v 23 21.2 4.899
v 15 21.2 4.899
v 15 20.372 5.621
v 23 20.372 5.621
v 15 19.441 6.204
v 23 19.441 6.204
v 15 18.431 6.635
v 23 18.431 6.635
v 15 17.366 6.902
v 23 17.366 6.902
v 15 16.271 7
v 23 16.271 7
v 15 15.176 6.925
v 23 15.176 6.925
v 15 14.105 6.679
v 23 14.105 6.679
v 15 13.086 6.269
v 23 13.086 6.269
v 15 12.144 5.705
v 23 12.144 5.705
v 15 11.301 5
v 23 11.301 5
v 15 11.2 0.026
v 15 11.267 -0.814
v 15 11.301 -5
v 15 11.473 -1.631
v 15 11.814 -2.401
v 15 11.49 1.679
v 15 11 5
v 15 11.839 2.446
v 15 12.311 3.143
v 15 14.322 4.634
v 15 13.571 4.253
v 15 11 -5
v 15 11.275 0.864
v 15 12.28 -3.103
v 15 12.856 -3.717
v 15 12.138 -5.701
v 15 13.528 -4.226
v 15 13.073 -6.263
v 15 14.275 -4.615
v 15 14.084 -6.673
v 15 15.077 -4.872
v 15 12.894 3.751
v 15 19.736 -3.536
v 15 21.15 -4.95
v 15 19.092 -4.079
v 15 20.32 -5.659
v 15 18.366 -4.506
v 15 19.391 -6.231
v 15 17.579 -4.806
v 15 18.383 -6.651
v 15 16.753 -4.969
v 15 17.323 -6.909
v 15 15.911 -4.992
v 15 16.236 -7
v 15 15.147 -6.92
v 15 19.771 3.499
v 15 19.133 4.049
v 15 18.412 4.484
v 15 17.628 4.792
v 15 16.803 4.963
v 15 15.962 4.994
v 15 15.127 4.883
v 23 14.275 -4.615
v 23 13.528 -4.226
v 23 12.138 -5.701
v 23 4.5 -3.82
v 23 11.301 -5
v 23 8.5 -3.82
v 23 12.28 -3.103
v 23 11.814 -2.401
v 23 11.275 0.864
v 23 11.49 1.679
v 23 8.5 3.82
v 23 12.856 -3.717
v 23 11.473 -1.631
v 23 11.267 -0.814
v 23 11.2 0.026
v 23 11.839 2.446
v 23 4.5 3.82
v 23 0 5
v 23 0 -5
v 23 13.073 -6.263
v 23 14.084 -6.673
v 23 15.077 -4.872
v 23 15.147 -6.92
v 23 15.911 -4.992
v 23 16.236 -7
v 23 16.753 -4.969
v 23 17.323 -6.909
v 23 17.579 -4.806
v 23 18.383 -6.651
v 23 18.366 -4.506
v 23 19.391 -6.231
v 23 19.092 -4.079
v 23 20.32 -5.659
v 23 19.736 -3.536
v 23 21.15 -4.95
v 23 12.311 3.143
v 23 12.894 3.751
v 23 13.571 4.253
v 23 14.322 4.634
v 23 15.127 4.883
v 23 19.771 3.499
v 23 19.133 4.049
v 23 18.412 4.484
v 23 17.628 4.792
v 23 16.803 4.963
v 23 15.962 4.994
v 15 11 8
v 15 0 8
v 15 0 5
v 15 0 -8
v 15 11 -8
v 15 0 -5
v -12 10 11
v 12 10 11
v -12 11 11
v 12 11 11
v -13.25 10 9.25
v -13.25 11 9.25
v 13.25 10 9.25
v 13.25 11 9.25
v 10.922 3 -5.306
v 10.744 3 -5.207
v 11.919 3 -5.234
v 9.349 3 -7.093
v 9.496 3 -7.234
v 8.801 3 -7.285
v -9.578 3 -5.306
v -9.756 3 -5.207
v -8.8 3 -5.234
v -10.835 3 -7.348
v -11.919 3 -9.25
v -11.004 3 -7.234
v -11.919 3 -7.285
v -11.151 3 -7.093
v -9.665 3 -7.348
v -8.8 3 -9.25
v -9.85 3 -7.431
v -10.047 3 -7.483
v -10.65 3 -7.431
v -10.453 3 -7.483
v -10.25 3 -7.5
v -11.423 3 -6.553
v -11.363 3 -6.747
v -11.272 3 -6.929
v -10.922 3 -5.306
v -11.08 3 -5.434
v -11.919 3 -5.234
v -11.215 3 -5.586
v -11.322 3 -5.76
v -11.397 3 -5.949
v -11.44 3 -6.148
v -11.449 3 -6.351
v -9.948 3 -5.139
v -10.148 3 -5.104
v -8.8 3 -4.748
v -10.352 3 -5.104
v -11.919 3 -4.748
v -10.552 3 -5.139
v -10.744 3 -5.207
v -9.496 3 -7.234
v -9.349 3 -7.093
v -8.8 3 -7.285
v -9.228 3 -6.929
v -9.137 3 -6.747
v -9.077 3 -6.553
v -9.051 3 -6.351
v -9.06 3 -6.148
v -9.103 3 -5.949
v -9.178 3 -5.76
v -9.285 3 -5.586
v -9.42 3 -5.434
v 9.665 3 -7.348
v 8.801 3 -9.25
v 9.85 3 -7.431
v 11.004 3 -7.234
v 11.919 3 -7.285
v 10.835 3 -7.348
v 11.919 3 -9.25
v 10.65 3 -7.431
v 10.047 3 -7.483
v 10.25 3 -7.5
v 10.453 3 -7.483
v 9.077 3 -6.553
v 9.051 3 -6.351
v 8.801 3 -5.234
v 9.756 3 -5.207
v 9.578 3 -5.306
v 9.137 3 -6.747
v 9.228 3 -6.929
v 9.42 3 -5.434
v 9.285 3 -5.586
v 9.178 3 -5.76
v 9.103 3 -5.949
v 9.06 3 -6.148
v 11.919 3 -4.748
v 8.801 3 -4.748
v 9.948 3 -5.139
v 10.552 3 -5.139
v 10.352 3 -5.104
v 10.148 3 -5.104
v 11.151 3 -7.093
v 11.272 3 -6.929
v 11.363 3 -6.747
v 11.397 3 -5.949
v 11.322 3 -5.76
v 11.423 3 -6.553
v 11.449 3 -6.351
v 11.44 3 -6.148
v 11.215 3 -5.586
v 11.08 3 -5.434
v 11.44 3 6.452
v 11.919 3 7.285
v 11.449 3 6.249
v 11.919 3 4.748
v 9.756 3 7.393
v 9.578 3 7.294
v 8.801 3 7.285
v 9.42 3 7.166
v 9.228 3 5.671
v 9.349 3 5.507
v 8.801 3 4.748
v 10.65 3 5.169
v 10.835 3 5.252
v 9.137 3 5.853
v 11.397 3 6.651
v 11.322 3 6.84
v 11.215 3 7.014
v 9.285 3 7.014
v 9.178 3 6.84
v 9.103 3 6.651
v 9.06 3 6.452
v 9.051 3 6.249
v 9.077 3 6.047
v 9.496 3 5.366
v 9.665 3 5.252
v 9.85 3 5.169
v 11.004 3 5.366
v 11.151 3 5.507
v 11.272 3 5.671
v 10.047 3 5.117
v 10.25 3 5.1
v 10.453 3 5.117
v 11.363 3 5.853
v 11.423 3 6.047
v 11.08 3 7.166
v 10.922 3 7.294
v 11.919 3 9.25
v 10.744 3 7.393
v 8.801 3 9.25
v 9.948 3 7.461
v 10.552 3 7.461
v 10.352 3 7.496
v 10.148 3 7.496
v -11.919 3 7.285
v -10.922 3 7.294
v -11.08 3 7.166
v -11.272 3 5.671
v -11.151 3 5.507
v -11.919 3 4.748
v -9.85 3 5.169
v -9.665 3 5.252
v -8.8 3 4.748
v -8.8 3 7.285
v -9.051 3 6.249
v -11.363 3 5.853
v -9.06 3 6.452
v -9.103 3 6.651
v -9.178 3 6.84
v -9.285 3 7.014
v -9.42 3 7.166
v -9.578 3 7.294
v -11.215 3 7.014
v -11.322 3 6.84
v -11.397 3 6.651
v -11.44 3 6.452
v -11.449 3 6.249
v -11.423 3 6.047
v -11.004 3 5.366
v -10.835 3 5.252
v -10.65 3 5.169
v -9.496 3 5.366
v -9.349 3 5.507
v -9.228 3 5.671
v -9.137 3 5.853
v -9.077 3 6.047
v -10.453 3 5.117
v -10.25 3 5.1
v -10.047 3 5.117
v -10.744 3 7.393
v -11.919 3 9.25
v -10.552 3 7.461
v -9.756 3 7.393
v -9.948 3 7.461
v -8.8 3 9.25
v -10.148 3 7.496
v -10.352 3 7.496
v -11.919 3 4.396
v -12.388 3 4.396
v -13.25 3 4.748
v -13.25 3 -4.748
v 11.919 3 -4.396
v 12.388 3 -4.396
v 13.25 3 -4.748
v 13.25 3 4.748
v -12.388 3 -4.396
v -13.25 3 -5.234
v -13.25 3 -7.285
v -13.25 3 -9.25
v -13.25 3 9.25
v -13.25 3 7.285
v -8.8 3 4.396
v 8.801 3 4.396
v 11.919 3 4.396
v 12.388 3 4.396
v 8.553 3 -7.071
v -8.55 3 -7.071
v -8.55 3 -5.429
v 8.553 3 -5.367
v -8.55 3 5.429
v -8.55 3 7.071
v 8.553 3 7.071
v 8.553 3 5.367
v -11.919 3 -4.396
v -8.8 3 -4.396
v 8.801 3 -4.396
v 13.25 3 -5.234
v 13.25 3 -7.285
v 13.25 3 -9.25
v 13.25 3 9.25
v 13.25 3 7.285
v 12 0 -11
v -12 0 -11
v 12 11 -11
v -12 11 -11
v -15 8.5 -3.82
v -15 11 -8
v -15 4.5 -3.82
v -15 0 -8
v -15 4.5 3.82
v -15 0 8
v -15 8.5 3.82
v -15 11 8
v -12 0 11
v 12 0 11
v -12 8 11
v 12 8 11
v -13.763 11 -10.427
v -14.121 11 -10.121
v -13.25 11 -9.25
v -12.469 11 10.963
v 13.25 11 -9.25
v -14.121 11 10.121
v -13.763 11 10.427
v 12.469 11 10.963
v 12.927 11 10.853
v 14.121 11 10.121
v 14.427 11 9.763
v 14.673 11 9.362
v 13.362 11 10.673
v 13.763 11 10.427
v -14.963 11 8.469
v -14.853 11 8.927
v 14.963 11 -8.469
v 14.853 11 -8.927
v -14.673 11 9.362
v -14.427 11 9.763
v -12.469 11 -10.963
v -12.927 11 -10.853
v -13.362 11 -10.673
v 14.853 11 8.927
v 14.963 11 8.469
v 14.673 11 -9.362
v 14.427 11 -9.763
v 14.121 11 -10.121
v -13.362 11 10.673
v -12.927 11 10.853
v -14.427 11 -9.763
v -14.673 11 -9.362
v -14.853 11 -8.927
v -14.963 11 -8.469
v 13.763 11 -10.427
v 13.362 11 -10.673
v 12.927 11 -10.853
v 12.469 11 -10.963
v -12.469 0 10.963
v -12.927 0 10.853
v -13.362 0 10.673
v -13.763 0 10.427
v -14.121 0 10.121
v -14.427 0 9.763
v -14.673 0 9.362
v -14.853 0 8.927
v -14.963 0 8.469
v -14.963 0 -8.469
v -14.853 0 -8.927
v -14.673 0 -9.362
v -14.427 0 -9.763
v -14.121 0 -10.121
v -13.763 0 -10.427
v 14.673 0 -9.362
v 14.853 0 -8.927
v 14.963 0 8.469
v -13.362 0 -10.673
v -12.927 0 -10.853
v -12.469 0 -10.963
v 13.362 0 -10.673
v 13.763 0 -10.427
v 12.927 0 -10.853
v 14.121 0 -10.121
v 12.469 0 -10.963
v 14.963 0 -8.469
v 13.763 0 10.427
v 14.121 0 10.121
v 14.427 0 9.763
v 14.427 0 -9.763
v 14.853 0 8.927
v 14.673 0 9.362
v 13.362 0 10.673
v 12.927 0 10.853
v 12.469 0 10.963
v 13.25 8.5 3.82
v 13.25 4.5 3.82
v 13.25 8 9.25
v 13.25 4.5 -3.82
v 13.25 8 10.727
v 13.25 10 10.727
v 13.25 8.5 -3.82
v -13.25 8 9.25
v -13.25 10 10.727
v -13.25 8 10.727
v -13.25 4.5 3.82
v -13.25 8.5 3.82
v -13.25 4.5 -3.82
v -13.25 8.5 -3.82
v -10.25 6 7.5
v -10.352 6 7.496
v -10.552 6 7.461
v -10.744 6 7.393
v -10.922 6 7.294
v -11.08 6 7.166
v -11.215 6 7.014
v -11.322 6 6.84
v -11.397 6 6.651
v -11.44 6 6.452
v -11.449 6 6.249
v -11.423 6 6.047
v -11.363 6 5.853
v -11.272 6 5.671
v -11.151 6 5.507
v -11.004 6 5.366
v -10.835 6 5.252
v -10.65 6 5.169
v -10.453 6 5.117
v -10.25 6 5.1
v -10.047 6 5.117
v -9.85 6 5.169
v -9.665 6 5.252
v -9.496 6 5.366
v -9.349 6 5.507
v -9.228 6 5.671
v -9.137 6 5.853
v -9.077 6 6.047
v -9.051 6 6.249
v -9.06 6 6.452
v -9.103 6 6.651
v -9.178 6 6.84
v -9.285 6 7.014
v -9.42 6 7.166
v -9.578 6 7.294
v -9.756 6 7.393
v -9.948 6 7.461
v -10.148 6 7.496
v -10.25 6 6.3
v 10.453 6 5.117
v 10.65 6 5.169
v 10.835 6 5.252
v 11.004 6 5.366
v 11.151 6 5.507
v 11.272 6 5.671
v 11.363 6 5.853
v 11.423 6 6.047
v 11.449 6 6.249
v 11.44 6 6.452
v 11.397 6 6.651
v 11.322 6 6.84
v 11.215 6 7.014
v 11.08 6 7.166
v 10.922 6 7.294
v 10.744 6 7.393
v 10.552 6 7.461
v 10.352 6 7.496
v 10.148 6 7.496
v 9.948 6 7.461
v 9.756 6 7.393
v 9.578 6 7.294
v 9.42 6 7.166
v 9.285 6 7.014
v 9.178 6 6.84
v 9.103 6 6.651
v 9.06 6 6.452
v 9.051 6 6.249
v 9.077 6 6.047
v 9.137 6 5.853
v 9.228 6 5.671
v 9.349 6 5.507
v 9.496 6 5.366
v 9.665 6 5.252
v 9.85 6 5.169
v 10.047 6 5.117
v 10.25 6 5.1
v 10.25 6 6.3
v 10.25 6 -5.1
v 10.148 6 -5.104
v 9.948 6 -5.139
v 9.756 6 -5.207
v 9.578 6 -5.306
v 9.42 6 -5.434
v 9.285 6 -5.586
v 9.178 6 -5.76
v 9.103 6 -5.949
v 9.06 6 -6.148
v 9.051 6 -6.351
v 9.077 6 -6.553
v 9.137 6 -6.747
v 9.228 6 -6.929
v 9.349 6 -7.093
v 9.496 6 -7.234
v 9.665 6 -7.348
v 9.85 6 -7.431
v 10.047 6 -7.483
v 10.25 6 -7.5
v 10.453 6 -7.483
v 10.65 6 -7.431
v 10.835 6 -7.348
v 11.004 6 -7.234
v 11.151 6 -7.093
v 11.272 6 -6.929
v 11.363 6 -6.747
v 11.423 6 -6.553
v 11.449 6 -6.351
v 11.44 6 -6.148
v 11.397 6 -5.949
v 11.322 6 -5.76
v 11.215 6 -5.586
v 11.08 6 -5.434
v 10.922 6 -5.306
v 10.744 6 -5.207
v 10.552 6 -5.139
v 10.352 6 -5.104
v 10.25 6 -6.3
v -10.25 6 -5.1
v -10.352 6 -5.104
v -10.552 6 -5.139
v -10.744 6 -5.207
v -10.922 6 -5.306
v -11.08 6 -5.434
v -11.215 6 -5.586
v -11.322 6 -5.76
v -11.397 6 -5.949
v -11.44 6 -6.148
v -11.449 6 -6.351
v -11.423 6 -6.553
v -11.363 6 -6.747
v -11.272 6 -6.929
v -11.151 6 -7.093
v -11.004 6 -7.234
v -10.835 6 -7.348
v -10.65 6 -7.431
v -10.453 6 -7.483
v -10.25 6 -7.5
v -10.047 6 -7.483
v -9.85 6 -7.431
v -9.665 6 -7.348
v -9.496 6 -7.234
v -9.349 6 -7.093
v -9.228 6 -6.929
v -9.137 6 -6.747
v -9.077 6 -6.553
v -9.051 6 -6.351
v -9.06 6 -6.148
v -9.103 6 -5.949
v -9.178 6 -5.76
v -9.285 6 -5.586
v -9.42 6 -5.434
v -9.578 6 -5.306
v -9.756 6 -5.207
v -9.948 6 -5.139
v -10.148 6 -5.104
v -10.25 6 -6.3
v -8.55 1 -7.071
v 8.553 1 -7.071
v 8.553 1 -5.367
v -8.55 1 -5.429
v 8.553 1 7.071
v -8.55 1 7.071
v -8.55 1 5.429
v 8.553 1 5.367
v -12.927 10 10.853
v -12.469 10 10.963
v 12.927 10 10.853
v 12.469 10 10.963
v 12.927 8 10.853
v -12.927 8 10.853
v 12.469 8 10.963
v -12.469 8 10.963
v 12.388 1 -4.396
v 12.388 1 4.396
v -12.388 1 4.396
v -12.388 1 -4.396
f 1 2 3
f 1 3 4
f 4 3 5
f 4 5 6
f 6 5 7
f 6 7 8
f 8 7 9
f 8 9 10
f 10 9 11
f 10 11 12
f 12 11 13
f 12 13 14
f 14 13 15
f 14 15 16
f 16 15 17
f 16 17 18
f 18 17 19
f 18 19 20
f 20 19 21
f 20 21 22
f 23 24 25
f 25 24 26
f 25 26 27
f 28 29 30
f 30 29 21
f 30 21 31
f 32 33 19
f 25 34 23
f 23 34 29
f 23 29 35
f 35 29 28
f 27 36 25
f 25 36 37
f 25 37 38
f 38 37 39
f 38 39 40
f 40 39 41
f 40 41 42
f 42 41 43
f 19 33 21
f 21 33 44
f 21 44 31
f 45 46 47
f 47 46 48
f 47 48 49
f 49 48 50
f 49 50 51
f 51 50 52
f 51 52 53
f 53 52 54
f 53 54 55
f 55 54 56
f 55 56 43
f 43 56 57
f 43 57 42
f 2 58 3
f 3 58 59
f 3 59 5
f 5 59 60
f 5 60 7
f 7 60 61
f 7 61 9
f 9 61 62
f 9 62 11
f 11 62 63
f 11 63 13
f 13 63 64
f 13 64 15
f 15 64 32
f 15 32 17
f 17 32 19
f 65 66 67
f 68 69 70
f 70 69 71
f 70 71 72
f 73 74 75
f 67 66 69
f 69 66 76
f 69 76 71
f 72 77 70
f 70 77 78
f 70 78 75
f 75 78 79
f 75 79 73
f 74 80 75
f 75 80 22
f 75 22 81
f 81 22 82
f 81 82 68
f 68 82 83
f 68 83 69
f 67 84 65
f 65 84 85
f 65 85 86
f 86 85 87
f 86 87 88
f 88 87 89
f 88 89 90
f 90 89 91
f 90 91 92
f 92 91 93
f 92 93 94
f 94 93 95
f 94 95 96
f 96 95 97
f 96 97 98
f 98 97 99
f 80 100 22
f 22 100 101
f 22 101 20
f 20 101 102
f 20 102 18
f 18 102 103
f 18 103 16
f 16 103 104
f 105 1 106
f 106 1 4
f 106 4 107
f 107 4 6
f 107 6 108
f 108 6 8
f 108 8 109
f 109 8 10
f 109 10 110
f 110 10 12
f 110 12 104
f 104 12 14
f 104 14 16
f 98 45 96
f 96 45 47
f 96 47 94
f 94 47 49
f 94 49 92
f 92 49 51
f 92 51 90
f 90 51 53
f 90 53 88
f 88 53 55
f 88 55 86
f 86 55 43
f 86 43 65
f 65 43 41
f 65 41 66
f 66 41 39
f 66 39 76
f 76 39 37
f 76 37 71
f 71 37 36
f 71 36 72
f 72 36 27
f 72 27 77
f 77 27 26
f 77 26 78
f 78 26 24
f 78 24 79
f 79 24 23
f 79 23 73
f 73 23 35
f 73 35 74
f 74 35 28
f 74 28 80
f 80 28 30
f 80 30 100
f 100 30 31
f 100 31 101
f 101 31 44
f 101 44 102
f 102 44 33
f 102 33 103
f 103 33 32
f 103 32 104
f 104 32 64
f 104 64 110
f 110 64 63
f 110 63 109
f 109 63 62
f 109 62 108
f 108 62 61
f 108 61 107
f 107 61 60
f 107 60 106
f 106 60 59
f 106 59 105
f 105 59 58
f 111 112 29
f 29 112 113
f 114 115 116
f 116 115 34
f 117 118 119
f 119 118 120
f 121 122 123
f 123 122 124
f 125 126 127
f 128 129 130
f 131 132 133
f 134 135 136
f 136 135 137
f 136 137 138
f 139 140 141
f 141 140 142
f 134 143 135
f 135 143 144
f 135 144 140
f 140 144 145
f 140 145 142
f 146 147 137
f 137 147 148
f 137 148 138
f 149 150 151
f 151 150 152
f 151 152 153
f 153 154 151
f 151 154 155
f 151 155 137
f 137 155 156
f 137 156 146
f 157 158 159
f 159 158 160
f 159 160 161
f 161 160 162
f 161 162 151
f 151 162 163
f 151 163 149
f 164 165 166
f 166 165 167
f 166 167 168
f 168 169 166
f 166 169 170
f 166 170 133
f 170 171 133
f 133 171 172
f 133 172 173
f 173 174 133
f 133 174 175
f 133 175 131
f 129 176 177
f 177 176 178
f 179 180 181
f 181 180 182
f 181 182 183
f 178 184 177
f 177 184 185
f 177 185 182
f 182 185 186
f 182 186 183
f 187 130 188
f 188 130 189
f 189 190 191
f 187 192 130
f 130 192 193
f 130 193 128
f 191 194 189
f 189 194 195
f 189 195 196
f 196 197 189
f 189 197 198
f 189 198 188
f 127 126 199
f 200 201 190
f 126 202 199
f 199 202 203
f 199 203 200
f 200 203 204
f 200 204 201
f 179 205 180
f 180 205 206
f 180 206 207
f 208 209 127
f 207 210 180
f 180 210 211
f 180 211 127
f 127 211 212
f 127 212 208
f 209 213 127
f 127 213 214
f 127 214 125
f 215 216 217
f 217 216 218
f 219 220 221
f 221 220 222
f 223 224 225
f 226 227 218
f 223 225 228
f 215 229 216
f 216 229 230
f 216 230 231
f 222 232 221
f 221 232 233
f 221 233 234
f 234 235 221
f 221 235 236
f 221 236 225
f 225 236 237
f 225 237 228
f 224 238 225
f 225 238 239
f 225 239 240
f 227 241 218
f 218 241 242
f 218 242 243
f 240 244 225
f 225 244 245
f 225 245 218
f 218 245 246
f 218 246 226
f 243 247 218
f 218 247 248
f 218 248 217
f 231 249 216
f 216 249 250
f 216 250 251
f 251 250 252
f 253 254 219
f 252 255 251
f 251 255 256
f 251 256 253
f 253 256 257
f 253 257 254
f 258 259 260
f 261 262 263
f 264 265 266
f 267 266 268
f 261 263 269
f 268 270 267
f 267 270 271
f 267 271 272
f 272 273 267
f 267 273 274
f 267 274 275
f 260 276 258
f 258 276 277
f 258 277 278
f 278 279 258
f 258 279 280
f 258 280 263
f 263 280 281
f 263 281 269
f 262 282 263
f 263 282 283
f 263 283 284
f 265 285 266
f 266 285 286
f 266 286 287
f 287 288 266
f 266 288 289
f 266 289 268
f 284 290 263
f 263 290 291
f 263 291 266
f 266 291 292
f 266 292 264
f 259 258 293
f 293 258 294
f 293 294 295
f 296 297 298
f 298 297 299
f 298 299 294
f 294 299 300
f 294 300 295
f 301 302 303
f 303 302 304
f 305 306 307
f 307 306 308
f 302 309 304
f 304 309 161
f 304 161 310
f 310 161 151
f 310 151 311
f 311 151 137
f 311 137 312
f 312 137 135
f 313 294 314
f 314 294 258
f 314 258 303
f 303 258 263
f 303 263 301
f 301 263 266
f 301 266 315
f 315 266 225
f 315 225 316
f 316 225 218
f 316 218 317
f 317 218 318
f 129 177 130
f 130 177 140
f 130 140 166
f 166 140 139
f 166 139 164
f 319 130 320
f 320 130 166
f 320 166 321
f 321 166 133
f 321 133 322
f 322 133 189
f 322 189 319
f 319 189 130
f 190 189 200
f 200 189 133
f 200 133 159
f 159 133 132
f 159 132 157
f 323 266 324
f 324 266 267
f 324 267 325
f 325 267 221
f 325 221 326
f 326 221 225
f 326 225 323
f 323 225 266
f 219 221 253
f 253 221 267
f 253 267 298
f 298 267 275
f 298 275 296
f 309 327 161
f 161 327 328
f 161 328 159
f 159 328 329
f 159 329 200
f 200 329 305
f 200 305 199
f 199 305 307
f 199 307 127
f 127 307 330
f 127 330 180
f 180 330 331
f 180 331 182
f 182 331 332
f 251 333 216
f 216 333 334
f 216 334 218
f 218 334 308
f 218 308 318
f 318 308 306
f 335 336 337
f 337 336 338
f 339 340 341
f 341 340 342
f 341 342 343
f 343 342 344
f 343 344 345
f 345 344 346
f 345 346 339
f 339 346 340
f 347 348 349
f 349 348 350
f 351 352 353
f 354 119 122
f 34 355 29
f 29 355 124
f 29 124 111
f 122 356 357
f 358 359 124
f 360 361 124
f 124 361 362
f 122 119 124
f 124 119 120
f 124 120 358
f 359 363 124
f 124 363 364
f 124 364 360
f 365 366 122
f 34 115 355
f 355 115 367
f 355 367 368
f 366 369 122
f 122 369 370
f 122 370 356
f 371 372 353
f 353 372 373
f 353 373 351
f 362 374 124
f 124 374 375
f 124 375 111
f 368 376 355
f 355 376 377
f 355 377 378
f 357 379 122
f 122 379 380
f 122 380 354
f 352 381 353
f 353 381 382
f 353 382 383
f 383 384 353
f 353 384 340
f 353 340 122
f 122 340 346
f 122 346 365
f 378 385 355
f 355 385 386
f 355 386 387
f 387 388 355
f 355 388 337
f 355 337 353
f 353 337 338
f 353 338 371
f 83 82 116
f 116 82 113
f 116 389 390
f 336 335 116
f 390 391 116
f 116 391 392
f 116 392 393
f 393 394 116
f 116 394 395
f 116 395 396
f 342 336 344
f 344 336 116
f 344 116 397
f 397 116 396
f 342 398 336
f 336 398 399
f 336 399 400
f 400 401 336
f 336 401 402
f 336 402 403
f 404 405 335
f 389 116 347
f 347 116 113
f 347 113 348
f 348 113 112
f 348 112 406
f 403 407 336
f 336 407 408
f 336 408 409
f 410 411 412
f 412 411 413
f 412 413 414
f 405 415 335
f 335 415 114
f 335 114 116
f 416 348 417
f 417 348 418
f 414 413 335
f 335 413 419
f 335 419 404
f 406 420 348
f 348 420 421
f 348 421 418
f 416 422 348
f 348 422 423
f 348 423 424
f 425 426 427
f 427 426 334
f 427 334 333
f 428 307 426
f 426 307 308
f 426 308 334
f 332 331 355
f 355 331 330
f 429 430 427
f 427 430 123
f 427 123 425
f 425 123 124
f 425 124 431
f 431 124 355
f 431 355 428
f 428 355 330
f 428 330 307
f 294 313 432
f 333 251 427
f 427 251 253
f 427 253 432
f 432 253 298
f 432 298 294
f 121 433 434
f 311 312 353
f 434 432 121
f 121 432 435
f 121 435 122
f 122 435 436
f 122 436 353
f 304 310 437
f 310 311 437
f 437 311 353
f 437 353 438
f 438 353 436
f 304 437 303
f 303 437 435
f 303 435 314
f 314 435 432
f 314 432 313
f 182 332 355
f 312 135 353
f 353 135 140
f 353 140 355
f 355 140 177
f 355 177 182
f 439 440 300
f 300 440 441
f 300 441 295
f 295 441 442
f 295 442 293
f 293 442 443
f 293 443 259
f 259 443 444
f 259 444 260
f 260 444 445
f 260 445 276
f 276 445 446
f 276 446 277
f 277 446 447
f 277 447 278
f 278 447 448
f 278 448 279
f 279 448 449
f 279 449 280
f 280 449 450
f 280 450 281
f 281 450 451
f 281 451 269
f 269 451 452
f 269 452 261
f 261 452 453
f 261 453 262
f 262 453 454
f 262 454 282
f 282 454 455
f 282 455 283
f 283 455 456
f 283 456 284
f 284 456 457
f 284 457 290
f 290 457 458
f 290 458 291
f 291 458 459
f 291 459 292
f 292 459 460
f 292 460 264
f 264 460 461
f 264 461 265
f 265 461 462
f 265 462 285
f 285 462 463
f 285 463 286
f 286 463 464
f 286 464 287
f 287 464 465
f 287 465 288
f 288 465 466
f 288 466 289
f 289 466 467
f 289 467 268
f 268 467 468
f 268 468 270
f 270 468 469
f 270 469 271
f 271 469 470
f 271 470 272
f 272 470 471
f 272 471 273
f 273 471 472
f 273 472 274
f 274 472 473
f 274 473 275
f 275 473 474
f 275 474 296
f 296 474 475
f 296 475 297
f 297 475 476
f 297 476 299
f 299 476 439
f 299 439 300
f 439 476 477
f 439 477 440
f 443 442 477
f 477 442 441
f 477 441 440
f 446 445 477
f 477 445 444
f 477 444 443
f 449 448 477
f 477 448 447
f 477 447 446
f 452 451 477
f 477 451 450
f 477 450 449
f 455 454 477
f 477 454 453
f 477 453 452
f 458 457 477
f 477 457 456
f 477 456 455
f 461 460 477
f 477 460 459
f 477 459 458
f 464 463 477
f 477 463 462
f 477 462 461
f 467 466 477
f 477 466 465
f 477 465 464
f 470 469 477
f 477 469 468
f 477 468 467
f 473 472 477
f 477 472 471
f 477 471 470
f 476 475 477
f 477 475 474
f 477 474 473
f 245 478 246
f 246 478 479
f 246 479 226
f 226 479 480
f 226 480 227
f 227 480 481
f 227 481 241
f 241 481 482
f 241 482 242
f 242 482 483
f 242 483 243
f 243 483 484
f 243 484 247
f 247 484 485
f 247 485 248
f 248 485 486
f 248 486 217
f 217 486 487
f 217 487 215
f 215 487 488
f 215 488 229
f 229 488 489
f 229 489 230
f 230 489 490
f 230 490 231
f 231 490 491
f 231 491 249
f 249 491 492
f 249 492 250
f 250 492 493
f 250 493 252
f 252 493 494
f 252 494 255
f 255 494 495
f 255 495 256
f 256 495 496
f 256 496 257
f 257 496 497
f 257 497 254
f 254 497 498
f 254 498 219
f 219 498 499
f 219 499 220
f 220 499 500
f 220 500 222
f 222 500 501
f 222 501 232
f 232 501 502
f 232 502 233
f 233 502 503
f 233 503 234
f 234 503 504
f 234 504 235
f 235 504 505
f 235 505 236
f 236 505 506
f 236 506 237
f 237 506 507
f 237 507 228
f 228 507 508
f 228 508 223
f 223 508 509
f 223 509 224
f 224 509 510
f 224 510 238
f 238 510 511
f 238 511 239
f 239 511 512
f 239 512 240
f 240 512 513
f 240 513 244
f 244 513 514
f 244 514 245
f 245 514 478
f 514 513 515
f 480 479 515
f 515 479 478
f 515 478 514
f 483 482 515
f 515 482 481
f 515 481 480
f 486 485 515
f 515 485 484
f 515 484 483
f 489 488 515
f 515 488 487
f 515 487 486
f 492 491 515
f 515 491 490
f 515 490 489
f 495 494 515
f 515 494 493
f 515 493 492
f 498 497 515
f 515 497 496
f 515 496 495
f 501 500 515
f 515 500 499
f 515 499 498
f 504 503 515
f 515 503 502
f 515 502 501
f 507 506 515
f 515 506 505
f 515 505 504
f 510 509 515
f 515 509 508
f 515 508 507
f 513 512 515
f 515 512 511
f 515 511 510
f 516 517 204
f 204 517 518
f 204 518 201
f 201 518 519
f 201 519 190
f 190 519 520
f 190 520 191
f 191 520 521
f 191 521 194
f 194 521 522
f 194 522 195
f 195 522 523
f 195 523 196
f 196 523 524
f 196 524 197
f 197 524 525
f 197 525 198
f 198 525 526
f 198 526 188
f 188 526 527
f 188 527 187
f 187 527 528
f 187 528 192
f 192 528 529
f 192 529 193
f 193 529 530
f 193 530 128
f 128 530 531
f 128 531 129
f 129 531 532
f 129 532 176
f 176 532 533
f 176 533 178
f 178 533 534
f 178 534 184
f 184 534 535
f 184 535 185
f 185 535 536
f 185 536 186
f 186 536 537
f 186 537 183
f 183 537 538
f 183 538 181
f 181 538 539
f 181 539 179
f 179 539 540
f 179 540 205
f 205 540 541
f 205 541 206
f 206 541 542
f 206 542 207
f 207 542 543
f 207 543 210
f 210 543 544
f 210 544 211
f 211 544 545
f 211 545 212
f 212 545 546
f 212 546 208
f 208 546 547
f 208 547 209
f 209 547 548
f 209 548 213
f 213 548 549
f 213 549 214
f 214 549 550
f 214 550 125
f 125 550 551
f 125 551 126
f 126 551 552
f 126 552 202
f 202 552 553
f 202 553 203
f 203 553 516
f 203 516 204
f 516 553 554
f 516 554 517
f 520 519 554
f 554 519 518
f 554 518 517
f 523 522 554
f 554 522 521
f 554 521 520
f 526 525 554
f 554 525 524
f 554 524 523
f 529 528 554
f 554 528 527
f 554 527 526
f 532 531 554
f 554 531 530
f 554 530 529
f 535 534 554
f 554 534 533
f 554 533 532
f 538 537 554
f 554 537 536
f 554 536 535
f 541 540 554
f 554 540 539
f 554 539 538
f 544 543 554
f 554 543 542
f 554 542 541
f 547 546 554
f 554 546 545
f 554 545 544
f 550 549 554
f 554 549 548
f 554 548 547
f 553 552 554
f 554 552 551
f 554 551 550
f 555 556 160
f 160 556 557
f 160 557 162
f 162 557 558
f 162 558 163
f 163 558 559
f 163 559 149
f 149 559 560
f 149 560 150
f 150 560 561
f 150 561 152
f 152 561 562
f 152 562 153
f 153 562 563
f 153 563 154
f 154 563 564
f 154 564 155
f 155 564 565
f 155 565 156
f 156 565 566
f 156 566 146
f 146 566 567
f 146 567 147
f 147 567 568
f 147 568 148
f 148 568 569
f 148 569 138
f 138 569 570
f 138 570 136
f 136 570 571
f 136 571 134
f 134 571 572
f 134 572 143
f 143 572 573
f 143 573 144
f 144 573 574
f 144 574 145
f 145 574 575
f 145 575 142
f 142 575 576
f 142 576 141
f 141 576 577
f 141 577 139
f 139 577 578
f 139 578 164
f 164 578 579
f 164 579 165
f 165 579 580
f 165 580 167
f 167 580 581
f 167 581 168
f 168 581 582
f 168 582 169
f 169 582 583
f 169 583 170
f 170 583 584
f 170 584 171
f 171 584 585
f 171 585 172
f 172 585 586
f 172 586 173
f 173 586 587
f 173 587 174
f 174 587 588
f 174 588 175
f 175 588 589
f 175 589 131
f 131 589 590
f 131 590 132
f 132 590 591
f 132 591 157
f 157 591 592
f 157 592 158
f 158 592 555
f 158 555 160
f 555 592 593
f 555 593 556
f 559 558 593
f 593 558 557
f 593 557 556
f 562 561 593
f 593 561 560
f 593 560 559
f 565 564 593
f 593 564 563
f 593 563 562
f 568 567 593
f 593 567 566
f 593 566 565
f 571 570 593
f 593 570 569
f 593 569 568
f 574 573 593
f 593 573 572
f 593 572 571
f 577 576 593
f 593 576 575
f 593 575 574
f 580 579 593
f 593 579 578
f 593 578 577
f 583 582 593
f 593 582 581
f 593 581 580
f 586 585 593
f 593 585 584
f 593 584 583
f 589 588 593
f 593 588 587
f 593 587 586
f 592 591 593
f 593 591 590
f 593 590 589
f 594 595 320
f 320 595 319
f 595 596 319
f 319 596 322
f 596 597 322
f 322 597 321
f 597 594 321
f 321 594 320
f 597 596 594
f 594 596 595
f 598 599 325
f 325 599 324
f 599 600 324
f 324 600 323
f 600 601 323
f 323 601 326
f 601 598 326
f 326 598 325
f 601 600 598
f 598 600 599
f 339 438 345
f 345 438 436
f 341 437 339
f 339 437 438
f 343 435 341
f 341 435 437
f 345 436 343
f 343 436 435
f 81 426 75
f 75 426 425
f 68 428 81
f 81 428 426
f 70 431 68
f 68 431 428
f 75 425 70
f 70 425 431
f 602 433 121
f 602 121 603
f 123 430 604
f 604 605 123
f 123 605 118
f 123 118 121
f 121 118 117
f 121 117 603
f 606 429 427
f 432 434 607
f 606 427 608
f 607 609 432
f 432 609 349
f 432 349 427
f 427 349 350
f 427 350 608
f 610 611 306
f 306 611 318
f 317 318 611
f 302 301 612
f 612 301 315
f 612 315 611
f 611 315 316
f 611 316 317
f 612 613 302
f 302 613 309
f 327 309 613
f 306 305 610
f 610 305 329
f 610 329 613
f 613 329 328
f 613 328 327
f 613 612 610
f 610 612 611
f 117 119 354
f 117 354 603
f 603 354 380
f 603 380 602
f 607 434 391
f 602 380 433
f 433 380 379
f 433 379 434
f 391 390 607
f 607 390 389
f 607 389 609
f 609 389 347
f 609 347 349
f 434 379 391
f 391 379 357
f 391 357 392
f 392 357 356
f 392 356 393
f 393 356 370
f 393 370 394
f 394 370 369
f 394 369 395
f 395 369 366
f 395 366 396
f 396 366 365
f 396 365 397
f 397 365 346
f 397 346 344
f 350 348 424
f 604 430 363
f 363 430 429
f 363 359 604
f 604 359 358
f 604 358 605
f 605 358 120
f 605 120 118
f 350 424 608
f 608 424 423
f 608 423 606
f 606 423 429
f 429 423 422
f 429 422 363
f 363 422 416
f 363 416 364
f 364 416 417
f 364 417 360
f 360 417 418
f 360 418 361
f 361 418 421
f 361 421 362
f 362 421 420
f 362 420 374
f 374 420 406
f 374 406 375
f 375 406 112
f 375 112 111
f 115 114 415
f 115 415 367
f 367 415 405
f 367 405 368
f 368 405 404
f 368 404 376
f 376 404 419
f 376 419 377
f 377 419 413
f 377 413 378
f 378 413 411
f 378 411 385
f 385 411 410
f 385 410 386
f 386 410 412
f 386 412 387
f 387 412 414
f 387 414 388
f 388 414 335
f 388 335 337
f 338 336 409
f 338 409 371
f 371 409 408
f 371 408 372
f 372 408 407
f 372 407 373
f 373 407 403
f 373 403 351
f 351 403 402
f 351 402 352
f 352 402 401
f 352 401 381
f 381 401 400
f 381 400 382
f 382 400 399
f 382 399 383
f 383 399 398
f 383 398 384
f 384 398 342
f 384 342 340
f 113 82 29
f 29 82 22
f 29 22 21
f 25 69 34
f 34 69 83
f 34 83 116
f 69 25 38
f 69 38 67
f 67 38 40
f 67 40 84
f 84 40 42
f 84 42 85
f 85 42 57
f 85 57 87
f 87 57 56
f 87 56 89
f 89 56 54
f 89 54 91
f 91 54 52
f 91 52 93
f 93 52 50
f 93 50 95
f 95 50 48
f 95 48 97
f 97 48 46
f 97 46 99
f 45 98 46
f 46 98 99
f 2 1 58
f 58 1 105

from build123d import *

# Parameters (mm, degrees)
SKETCH1_W                = 30
SKETCH1_H                = 22
BOSS_EXTRUDE1_DEPTH      = 11
SKETCH2_W                = 26.5
SKETCH2_H                = 18.5
CUT_EXTRUDE1_DEPTH       = 8
SKETCH3_R                = 1.2
BOSS_EXTRUDE2_DEPTH      = 3
CUT_EXTRUDE2_DEPTH       = 2
SKETCH5_W                = 7.639048366
SKETCH5_H                = 4
CUT_EXTRUDE3_DEPTH       = 34.793490497
CUT_EXTRUDE4_REACH       = 30.81
SKETCH6_W                = 26.5
SKETCH6_H                = 2
SKETCH8_W                = 24.775890618
SKETCH8_H                = 8.79217469
CUT_EXTRUDE5_DEPTH       = 2
FILLET1_R                = 3
SKETCH10_R               = 7
SKETCH10_R_2             = 5
BOSS_EXTRUDE4_DEPTH      = 8
BOSS_EXTRUDE8_REACH      = 36.471
BOSS_EXTRUDE8_END_RADIUS = 7
SKETCH15_W               = 8
SKETCH15_H               = 10
SKETCH16_W               = 7.639048366
SKETCH16_H               = 4
CUT_EXTRUDE7_DEPTH       = 46.861094623
CUT_EXTRUDE8_REACH       = 47.861


with BuildPart() as part:
    # Sketch1 → Boss-Extrude1 (new body)
    with BuildSketch(Plane(origin=(0, 0, 0), x_dir=(1, 0, 0), z_dir=(0, 1, 0))):
        Rectangle(SKETCH1_W, SKETCH1_H)
    extrude(amount=BOSS_EXTRUDE1_DEPTH)

    # Sketch2 → Cut-Extrude1 (cut)
    with BuildSketch(Plane(origin=(0, 11, 0), x_dir=(1, 0, 0), z_dir=(0, 1, 0))):
        Rectangle(SKETCH2_W, SKETCH2_H)
    extrude(amount=-CUT_EXTRUDE1_DEPTH, mode=Mode.SUBTRACT)

    # Sketch3 → Boss-Extrude2 (add)
    with BuildSketch(Plane(origin=(0, 3, 0), x_dir=(1, 0, 0), z_dir=(0, 1, 0))):
        with Locations(Location((-10.25, -6.3, 0), (0, 0, 90))):
            Circle(SKETCH3_R)
        with Locations(Location((10.25, -6.3, 0), (0, 0, 90))):
            Circle(SKETCH3_R)
        with Locations(Location((10.25, 6.3, 0), (0, 0, 90))):
            Circle(SKETCH3_R)
        with Locations(Location((-10.25, 6.3, 0), (0, 0, 90))):
            Circle(SKETCH3_R)
    extrude(amount=BOSS_EXTRUDE2_DEPTH)

    # Sketch4 → Cut-Extrude2 (cut)
    with BuildSketch(Plane(origin=(0, 3, 0), x_dir=(1, 0, 0), z_dir=(0, 1, 0))):
        Polygon((8.552738998, 7.070702511), (8.552738998, 5.36723461), (-8.55, 5.429297489), (-8.55, 7.070702511), align=None)
    cut_extrude2 = extrude(amount=-CUT_EXTRUDE2_DEPTH, mode=Mode.SUBTRACT)

    # Mirror1: Cut-Extrude2 across plane
    add(cut_extrude2.mirror(Plane.XY), mode=Mode.SUBTRACT)

    # Sketch5 → Cut-Extrude3 (cut, through all)
    with BuildSketch(Plane.ZY.offset(15)):
        with Locations((0, 6.5)):
            Rectangle(SKETCH5_W, SKETCH5_H)
    extrude(amount=-CUT_EXTRUDE3_DEPTH, mode=Mode.SUBTRACT)

    # Sketch6 → Cut-Extrude4 (cut, up to next)
    with BuildSketch(Plane.XY.offset(11), mode=Mode.PRIVATE) as cut_extrude4_sk1:
        with Locations((0, 9)):
            Rectangle(SKETCH6_W, SKETCH6_H)
    cut_extrude4_tool1 = extrude(cut_extrude4_sk1.sketch, amount=-CUT_EXTRUDE4_REACH, mode=Mode.PRIVATE) & part.part
    add(cut_extrude4_tool1.solids().sort_by_distance((0, 9, 11))[0], mode=Mode.SUBTRACT)

    # Sketch8 → Cut-Extrude5 (cut)
    with BuildSketch(Plane(origin=(0, 3, 0), x_dir=(1, 0, 0), z_dir=(0, 1, 0))):
        Rectangle(SKETCH8_W, SKETCH8_H)
    extrude(amount=-CUT_EXTRUDE5_DEPTH, mode=Mode.SUBTRACT)

    # Fillet1
    # the kernel refuses this fillet: 3 mm, written as the material it takes off along each edge
    with BuildSketch(Plane(origin=(-15, -7.5, 11), x_dir=(1, 0, 0), z_dir=(0, 1, 0)), Plane(origin=(-15, -7.5, -11), x_dir=(0, 0, 1), z_dir=(0, 1, 0))) as fillet1_piece_1:
        with BuildLine():
            CenterArc((FILLET1_R, FILLET1_R), FILLET1_R, 180, 90)
            Line((0, FILLET1_R), (0, 0))
            Line((0, 0), (FILLET1_R, 0))
        make_face()
    extrude(amount=26, mode=Mode.SUBTRACT)
    with BuildSketch(Plane(origin=(15, -7.5, 11), x_dir=(-1, 0, 0), z_dir=(0, 1, 0)), Plane(origin=(15, -7.5, -11), x_dir=(0, 0, 1), z_dir=(0, 1, 0))) as fillet1_piece_2:
        with BuildLine():
            CenterArc((FILLET1_R, -FILLET1_R), FILLET1_R, 90, 90)
            Line((0, -FILLET1_R), (0, 0))
            Line((0, 0), (FILLET1_R, 0))
        make_face()
    extrude(amount=26, mode=Mode.SUBTRACT)



with BuildPart() as body_2:
    # Sketch10 → Boss-Extrude4 (new body)
    with BuildSketch(Plane(origin=(15, 0, -26), x_dir=(0, 0, 1), z_dir=(-1, 0, 0))):
        with Locations((26, 16.2)):
            Circle(SKETCH10_R)
        with Locations((26, 16.2)):
            Circle(SKETCH10_R_2, mode=Mode.SUBTRACT)
    extrude(amount=-BOSS_EXTRUDE4_DEPTH)


with BuildPart() as part_1:
    add(part.part)

    add(body_2.part)  # Boss-Extrude8 merges body 2
    # Boss-Extrude8: up to this cylinder (the profile starts outside it)
    boss_extrude8_end = Plane(origin=(19, 16.2, 0), z_dir=(-1, 0, 0)) * Cylinder(BOSS_EXTRUDE8_END_RADIUS, 87.942, mode=Mode.PRIVATE)
    # Sketch15 → Boss-Extrude8 (add, up to the surface)
    with BuildSketch(Plane(origin=(0, 0, 0), x_dir=(1, 0, 0), z_dir=(0, 1, 0)), mode=Mode.PRIVATE) as boss_extrude8_sk1:
        with Locations((19, 0)):
            Rectangle(SKETCH15_W, SKETCH15_H)
    boss_extrude8_tool1 = extrude(boss_extrude8_sk1.sketch, amount=BOSS_EXTRUDE8_REACH, mode=Mode.PRIVATE) - boss_extrude8_end
    add(boss_extrude8_tool1.solids().sort_by_distance((19, 0, 0))[0])

    # Sketch16 → Cut-Extrude7 (cut, through all)
    with BuildSketch(Plane(origin=(23, 0, 0), x_dir=(0, 0, -1), z_dir=(1, 0, 0))):
        with Locations((0, 6.5)):
            Rectangle(SKETCH16_W, SKETCH16_H)
    extrude(amount=-CUT_EXTRUDE7_DEPTH, mode=Mode.SUBTRACT)

    # Sketch17 → Cut-Extrude8 (cut, up to next)
    with BuildSketch(Plane(origin=(23, 0, 0), x_dir=(0, 0, -1), z_dir=(1, 0, 0)), mode=Mode.PRIVATE) as cut_extrude8_sk1:
        with BuildLine():
            Line((-4.898979486, 21.2), (-3.499271061, 19.771428571))
            ThreePointArc((-3.499271061, 19.771428571), (0.025511865, 21.199934914), (3.535533906, 19.735533906))
            Line((3.535533906, 19.735533906), (4.949747468, 21.149747468))
            ThreePointArc((4.949747468, 21.149747468), (0.03571661, 23.19990888), (-4.898979486, 21.2))
        make_face()
    cut_extrude8_tool1 = extrude(cut_extrude8_sk1.sketch, amount=-CUT_EXTRUDE8_REACH, mode=Mode.PRIVATE) & part_1.part
    add(cut_extrude8_tool1.solids().sort_by_distance((23, 21.659424, -0.027856))[0], mode=Mode.SUBTRACT)


solid = part_1.part
